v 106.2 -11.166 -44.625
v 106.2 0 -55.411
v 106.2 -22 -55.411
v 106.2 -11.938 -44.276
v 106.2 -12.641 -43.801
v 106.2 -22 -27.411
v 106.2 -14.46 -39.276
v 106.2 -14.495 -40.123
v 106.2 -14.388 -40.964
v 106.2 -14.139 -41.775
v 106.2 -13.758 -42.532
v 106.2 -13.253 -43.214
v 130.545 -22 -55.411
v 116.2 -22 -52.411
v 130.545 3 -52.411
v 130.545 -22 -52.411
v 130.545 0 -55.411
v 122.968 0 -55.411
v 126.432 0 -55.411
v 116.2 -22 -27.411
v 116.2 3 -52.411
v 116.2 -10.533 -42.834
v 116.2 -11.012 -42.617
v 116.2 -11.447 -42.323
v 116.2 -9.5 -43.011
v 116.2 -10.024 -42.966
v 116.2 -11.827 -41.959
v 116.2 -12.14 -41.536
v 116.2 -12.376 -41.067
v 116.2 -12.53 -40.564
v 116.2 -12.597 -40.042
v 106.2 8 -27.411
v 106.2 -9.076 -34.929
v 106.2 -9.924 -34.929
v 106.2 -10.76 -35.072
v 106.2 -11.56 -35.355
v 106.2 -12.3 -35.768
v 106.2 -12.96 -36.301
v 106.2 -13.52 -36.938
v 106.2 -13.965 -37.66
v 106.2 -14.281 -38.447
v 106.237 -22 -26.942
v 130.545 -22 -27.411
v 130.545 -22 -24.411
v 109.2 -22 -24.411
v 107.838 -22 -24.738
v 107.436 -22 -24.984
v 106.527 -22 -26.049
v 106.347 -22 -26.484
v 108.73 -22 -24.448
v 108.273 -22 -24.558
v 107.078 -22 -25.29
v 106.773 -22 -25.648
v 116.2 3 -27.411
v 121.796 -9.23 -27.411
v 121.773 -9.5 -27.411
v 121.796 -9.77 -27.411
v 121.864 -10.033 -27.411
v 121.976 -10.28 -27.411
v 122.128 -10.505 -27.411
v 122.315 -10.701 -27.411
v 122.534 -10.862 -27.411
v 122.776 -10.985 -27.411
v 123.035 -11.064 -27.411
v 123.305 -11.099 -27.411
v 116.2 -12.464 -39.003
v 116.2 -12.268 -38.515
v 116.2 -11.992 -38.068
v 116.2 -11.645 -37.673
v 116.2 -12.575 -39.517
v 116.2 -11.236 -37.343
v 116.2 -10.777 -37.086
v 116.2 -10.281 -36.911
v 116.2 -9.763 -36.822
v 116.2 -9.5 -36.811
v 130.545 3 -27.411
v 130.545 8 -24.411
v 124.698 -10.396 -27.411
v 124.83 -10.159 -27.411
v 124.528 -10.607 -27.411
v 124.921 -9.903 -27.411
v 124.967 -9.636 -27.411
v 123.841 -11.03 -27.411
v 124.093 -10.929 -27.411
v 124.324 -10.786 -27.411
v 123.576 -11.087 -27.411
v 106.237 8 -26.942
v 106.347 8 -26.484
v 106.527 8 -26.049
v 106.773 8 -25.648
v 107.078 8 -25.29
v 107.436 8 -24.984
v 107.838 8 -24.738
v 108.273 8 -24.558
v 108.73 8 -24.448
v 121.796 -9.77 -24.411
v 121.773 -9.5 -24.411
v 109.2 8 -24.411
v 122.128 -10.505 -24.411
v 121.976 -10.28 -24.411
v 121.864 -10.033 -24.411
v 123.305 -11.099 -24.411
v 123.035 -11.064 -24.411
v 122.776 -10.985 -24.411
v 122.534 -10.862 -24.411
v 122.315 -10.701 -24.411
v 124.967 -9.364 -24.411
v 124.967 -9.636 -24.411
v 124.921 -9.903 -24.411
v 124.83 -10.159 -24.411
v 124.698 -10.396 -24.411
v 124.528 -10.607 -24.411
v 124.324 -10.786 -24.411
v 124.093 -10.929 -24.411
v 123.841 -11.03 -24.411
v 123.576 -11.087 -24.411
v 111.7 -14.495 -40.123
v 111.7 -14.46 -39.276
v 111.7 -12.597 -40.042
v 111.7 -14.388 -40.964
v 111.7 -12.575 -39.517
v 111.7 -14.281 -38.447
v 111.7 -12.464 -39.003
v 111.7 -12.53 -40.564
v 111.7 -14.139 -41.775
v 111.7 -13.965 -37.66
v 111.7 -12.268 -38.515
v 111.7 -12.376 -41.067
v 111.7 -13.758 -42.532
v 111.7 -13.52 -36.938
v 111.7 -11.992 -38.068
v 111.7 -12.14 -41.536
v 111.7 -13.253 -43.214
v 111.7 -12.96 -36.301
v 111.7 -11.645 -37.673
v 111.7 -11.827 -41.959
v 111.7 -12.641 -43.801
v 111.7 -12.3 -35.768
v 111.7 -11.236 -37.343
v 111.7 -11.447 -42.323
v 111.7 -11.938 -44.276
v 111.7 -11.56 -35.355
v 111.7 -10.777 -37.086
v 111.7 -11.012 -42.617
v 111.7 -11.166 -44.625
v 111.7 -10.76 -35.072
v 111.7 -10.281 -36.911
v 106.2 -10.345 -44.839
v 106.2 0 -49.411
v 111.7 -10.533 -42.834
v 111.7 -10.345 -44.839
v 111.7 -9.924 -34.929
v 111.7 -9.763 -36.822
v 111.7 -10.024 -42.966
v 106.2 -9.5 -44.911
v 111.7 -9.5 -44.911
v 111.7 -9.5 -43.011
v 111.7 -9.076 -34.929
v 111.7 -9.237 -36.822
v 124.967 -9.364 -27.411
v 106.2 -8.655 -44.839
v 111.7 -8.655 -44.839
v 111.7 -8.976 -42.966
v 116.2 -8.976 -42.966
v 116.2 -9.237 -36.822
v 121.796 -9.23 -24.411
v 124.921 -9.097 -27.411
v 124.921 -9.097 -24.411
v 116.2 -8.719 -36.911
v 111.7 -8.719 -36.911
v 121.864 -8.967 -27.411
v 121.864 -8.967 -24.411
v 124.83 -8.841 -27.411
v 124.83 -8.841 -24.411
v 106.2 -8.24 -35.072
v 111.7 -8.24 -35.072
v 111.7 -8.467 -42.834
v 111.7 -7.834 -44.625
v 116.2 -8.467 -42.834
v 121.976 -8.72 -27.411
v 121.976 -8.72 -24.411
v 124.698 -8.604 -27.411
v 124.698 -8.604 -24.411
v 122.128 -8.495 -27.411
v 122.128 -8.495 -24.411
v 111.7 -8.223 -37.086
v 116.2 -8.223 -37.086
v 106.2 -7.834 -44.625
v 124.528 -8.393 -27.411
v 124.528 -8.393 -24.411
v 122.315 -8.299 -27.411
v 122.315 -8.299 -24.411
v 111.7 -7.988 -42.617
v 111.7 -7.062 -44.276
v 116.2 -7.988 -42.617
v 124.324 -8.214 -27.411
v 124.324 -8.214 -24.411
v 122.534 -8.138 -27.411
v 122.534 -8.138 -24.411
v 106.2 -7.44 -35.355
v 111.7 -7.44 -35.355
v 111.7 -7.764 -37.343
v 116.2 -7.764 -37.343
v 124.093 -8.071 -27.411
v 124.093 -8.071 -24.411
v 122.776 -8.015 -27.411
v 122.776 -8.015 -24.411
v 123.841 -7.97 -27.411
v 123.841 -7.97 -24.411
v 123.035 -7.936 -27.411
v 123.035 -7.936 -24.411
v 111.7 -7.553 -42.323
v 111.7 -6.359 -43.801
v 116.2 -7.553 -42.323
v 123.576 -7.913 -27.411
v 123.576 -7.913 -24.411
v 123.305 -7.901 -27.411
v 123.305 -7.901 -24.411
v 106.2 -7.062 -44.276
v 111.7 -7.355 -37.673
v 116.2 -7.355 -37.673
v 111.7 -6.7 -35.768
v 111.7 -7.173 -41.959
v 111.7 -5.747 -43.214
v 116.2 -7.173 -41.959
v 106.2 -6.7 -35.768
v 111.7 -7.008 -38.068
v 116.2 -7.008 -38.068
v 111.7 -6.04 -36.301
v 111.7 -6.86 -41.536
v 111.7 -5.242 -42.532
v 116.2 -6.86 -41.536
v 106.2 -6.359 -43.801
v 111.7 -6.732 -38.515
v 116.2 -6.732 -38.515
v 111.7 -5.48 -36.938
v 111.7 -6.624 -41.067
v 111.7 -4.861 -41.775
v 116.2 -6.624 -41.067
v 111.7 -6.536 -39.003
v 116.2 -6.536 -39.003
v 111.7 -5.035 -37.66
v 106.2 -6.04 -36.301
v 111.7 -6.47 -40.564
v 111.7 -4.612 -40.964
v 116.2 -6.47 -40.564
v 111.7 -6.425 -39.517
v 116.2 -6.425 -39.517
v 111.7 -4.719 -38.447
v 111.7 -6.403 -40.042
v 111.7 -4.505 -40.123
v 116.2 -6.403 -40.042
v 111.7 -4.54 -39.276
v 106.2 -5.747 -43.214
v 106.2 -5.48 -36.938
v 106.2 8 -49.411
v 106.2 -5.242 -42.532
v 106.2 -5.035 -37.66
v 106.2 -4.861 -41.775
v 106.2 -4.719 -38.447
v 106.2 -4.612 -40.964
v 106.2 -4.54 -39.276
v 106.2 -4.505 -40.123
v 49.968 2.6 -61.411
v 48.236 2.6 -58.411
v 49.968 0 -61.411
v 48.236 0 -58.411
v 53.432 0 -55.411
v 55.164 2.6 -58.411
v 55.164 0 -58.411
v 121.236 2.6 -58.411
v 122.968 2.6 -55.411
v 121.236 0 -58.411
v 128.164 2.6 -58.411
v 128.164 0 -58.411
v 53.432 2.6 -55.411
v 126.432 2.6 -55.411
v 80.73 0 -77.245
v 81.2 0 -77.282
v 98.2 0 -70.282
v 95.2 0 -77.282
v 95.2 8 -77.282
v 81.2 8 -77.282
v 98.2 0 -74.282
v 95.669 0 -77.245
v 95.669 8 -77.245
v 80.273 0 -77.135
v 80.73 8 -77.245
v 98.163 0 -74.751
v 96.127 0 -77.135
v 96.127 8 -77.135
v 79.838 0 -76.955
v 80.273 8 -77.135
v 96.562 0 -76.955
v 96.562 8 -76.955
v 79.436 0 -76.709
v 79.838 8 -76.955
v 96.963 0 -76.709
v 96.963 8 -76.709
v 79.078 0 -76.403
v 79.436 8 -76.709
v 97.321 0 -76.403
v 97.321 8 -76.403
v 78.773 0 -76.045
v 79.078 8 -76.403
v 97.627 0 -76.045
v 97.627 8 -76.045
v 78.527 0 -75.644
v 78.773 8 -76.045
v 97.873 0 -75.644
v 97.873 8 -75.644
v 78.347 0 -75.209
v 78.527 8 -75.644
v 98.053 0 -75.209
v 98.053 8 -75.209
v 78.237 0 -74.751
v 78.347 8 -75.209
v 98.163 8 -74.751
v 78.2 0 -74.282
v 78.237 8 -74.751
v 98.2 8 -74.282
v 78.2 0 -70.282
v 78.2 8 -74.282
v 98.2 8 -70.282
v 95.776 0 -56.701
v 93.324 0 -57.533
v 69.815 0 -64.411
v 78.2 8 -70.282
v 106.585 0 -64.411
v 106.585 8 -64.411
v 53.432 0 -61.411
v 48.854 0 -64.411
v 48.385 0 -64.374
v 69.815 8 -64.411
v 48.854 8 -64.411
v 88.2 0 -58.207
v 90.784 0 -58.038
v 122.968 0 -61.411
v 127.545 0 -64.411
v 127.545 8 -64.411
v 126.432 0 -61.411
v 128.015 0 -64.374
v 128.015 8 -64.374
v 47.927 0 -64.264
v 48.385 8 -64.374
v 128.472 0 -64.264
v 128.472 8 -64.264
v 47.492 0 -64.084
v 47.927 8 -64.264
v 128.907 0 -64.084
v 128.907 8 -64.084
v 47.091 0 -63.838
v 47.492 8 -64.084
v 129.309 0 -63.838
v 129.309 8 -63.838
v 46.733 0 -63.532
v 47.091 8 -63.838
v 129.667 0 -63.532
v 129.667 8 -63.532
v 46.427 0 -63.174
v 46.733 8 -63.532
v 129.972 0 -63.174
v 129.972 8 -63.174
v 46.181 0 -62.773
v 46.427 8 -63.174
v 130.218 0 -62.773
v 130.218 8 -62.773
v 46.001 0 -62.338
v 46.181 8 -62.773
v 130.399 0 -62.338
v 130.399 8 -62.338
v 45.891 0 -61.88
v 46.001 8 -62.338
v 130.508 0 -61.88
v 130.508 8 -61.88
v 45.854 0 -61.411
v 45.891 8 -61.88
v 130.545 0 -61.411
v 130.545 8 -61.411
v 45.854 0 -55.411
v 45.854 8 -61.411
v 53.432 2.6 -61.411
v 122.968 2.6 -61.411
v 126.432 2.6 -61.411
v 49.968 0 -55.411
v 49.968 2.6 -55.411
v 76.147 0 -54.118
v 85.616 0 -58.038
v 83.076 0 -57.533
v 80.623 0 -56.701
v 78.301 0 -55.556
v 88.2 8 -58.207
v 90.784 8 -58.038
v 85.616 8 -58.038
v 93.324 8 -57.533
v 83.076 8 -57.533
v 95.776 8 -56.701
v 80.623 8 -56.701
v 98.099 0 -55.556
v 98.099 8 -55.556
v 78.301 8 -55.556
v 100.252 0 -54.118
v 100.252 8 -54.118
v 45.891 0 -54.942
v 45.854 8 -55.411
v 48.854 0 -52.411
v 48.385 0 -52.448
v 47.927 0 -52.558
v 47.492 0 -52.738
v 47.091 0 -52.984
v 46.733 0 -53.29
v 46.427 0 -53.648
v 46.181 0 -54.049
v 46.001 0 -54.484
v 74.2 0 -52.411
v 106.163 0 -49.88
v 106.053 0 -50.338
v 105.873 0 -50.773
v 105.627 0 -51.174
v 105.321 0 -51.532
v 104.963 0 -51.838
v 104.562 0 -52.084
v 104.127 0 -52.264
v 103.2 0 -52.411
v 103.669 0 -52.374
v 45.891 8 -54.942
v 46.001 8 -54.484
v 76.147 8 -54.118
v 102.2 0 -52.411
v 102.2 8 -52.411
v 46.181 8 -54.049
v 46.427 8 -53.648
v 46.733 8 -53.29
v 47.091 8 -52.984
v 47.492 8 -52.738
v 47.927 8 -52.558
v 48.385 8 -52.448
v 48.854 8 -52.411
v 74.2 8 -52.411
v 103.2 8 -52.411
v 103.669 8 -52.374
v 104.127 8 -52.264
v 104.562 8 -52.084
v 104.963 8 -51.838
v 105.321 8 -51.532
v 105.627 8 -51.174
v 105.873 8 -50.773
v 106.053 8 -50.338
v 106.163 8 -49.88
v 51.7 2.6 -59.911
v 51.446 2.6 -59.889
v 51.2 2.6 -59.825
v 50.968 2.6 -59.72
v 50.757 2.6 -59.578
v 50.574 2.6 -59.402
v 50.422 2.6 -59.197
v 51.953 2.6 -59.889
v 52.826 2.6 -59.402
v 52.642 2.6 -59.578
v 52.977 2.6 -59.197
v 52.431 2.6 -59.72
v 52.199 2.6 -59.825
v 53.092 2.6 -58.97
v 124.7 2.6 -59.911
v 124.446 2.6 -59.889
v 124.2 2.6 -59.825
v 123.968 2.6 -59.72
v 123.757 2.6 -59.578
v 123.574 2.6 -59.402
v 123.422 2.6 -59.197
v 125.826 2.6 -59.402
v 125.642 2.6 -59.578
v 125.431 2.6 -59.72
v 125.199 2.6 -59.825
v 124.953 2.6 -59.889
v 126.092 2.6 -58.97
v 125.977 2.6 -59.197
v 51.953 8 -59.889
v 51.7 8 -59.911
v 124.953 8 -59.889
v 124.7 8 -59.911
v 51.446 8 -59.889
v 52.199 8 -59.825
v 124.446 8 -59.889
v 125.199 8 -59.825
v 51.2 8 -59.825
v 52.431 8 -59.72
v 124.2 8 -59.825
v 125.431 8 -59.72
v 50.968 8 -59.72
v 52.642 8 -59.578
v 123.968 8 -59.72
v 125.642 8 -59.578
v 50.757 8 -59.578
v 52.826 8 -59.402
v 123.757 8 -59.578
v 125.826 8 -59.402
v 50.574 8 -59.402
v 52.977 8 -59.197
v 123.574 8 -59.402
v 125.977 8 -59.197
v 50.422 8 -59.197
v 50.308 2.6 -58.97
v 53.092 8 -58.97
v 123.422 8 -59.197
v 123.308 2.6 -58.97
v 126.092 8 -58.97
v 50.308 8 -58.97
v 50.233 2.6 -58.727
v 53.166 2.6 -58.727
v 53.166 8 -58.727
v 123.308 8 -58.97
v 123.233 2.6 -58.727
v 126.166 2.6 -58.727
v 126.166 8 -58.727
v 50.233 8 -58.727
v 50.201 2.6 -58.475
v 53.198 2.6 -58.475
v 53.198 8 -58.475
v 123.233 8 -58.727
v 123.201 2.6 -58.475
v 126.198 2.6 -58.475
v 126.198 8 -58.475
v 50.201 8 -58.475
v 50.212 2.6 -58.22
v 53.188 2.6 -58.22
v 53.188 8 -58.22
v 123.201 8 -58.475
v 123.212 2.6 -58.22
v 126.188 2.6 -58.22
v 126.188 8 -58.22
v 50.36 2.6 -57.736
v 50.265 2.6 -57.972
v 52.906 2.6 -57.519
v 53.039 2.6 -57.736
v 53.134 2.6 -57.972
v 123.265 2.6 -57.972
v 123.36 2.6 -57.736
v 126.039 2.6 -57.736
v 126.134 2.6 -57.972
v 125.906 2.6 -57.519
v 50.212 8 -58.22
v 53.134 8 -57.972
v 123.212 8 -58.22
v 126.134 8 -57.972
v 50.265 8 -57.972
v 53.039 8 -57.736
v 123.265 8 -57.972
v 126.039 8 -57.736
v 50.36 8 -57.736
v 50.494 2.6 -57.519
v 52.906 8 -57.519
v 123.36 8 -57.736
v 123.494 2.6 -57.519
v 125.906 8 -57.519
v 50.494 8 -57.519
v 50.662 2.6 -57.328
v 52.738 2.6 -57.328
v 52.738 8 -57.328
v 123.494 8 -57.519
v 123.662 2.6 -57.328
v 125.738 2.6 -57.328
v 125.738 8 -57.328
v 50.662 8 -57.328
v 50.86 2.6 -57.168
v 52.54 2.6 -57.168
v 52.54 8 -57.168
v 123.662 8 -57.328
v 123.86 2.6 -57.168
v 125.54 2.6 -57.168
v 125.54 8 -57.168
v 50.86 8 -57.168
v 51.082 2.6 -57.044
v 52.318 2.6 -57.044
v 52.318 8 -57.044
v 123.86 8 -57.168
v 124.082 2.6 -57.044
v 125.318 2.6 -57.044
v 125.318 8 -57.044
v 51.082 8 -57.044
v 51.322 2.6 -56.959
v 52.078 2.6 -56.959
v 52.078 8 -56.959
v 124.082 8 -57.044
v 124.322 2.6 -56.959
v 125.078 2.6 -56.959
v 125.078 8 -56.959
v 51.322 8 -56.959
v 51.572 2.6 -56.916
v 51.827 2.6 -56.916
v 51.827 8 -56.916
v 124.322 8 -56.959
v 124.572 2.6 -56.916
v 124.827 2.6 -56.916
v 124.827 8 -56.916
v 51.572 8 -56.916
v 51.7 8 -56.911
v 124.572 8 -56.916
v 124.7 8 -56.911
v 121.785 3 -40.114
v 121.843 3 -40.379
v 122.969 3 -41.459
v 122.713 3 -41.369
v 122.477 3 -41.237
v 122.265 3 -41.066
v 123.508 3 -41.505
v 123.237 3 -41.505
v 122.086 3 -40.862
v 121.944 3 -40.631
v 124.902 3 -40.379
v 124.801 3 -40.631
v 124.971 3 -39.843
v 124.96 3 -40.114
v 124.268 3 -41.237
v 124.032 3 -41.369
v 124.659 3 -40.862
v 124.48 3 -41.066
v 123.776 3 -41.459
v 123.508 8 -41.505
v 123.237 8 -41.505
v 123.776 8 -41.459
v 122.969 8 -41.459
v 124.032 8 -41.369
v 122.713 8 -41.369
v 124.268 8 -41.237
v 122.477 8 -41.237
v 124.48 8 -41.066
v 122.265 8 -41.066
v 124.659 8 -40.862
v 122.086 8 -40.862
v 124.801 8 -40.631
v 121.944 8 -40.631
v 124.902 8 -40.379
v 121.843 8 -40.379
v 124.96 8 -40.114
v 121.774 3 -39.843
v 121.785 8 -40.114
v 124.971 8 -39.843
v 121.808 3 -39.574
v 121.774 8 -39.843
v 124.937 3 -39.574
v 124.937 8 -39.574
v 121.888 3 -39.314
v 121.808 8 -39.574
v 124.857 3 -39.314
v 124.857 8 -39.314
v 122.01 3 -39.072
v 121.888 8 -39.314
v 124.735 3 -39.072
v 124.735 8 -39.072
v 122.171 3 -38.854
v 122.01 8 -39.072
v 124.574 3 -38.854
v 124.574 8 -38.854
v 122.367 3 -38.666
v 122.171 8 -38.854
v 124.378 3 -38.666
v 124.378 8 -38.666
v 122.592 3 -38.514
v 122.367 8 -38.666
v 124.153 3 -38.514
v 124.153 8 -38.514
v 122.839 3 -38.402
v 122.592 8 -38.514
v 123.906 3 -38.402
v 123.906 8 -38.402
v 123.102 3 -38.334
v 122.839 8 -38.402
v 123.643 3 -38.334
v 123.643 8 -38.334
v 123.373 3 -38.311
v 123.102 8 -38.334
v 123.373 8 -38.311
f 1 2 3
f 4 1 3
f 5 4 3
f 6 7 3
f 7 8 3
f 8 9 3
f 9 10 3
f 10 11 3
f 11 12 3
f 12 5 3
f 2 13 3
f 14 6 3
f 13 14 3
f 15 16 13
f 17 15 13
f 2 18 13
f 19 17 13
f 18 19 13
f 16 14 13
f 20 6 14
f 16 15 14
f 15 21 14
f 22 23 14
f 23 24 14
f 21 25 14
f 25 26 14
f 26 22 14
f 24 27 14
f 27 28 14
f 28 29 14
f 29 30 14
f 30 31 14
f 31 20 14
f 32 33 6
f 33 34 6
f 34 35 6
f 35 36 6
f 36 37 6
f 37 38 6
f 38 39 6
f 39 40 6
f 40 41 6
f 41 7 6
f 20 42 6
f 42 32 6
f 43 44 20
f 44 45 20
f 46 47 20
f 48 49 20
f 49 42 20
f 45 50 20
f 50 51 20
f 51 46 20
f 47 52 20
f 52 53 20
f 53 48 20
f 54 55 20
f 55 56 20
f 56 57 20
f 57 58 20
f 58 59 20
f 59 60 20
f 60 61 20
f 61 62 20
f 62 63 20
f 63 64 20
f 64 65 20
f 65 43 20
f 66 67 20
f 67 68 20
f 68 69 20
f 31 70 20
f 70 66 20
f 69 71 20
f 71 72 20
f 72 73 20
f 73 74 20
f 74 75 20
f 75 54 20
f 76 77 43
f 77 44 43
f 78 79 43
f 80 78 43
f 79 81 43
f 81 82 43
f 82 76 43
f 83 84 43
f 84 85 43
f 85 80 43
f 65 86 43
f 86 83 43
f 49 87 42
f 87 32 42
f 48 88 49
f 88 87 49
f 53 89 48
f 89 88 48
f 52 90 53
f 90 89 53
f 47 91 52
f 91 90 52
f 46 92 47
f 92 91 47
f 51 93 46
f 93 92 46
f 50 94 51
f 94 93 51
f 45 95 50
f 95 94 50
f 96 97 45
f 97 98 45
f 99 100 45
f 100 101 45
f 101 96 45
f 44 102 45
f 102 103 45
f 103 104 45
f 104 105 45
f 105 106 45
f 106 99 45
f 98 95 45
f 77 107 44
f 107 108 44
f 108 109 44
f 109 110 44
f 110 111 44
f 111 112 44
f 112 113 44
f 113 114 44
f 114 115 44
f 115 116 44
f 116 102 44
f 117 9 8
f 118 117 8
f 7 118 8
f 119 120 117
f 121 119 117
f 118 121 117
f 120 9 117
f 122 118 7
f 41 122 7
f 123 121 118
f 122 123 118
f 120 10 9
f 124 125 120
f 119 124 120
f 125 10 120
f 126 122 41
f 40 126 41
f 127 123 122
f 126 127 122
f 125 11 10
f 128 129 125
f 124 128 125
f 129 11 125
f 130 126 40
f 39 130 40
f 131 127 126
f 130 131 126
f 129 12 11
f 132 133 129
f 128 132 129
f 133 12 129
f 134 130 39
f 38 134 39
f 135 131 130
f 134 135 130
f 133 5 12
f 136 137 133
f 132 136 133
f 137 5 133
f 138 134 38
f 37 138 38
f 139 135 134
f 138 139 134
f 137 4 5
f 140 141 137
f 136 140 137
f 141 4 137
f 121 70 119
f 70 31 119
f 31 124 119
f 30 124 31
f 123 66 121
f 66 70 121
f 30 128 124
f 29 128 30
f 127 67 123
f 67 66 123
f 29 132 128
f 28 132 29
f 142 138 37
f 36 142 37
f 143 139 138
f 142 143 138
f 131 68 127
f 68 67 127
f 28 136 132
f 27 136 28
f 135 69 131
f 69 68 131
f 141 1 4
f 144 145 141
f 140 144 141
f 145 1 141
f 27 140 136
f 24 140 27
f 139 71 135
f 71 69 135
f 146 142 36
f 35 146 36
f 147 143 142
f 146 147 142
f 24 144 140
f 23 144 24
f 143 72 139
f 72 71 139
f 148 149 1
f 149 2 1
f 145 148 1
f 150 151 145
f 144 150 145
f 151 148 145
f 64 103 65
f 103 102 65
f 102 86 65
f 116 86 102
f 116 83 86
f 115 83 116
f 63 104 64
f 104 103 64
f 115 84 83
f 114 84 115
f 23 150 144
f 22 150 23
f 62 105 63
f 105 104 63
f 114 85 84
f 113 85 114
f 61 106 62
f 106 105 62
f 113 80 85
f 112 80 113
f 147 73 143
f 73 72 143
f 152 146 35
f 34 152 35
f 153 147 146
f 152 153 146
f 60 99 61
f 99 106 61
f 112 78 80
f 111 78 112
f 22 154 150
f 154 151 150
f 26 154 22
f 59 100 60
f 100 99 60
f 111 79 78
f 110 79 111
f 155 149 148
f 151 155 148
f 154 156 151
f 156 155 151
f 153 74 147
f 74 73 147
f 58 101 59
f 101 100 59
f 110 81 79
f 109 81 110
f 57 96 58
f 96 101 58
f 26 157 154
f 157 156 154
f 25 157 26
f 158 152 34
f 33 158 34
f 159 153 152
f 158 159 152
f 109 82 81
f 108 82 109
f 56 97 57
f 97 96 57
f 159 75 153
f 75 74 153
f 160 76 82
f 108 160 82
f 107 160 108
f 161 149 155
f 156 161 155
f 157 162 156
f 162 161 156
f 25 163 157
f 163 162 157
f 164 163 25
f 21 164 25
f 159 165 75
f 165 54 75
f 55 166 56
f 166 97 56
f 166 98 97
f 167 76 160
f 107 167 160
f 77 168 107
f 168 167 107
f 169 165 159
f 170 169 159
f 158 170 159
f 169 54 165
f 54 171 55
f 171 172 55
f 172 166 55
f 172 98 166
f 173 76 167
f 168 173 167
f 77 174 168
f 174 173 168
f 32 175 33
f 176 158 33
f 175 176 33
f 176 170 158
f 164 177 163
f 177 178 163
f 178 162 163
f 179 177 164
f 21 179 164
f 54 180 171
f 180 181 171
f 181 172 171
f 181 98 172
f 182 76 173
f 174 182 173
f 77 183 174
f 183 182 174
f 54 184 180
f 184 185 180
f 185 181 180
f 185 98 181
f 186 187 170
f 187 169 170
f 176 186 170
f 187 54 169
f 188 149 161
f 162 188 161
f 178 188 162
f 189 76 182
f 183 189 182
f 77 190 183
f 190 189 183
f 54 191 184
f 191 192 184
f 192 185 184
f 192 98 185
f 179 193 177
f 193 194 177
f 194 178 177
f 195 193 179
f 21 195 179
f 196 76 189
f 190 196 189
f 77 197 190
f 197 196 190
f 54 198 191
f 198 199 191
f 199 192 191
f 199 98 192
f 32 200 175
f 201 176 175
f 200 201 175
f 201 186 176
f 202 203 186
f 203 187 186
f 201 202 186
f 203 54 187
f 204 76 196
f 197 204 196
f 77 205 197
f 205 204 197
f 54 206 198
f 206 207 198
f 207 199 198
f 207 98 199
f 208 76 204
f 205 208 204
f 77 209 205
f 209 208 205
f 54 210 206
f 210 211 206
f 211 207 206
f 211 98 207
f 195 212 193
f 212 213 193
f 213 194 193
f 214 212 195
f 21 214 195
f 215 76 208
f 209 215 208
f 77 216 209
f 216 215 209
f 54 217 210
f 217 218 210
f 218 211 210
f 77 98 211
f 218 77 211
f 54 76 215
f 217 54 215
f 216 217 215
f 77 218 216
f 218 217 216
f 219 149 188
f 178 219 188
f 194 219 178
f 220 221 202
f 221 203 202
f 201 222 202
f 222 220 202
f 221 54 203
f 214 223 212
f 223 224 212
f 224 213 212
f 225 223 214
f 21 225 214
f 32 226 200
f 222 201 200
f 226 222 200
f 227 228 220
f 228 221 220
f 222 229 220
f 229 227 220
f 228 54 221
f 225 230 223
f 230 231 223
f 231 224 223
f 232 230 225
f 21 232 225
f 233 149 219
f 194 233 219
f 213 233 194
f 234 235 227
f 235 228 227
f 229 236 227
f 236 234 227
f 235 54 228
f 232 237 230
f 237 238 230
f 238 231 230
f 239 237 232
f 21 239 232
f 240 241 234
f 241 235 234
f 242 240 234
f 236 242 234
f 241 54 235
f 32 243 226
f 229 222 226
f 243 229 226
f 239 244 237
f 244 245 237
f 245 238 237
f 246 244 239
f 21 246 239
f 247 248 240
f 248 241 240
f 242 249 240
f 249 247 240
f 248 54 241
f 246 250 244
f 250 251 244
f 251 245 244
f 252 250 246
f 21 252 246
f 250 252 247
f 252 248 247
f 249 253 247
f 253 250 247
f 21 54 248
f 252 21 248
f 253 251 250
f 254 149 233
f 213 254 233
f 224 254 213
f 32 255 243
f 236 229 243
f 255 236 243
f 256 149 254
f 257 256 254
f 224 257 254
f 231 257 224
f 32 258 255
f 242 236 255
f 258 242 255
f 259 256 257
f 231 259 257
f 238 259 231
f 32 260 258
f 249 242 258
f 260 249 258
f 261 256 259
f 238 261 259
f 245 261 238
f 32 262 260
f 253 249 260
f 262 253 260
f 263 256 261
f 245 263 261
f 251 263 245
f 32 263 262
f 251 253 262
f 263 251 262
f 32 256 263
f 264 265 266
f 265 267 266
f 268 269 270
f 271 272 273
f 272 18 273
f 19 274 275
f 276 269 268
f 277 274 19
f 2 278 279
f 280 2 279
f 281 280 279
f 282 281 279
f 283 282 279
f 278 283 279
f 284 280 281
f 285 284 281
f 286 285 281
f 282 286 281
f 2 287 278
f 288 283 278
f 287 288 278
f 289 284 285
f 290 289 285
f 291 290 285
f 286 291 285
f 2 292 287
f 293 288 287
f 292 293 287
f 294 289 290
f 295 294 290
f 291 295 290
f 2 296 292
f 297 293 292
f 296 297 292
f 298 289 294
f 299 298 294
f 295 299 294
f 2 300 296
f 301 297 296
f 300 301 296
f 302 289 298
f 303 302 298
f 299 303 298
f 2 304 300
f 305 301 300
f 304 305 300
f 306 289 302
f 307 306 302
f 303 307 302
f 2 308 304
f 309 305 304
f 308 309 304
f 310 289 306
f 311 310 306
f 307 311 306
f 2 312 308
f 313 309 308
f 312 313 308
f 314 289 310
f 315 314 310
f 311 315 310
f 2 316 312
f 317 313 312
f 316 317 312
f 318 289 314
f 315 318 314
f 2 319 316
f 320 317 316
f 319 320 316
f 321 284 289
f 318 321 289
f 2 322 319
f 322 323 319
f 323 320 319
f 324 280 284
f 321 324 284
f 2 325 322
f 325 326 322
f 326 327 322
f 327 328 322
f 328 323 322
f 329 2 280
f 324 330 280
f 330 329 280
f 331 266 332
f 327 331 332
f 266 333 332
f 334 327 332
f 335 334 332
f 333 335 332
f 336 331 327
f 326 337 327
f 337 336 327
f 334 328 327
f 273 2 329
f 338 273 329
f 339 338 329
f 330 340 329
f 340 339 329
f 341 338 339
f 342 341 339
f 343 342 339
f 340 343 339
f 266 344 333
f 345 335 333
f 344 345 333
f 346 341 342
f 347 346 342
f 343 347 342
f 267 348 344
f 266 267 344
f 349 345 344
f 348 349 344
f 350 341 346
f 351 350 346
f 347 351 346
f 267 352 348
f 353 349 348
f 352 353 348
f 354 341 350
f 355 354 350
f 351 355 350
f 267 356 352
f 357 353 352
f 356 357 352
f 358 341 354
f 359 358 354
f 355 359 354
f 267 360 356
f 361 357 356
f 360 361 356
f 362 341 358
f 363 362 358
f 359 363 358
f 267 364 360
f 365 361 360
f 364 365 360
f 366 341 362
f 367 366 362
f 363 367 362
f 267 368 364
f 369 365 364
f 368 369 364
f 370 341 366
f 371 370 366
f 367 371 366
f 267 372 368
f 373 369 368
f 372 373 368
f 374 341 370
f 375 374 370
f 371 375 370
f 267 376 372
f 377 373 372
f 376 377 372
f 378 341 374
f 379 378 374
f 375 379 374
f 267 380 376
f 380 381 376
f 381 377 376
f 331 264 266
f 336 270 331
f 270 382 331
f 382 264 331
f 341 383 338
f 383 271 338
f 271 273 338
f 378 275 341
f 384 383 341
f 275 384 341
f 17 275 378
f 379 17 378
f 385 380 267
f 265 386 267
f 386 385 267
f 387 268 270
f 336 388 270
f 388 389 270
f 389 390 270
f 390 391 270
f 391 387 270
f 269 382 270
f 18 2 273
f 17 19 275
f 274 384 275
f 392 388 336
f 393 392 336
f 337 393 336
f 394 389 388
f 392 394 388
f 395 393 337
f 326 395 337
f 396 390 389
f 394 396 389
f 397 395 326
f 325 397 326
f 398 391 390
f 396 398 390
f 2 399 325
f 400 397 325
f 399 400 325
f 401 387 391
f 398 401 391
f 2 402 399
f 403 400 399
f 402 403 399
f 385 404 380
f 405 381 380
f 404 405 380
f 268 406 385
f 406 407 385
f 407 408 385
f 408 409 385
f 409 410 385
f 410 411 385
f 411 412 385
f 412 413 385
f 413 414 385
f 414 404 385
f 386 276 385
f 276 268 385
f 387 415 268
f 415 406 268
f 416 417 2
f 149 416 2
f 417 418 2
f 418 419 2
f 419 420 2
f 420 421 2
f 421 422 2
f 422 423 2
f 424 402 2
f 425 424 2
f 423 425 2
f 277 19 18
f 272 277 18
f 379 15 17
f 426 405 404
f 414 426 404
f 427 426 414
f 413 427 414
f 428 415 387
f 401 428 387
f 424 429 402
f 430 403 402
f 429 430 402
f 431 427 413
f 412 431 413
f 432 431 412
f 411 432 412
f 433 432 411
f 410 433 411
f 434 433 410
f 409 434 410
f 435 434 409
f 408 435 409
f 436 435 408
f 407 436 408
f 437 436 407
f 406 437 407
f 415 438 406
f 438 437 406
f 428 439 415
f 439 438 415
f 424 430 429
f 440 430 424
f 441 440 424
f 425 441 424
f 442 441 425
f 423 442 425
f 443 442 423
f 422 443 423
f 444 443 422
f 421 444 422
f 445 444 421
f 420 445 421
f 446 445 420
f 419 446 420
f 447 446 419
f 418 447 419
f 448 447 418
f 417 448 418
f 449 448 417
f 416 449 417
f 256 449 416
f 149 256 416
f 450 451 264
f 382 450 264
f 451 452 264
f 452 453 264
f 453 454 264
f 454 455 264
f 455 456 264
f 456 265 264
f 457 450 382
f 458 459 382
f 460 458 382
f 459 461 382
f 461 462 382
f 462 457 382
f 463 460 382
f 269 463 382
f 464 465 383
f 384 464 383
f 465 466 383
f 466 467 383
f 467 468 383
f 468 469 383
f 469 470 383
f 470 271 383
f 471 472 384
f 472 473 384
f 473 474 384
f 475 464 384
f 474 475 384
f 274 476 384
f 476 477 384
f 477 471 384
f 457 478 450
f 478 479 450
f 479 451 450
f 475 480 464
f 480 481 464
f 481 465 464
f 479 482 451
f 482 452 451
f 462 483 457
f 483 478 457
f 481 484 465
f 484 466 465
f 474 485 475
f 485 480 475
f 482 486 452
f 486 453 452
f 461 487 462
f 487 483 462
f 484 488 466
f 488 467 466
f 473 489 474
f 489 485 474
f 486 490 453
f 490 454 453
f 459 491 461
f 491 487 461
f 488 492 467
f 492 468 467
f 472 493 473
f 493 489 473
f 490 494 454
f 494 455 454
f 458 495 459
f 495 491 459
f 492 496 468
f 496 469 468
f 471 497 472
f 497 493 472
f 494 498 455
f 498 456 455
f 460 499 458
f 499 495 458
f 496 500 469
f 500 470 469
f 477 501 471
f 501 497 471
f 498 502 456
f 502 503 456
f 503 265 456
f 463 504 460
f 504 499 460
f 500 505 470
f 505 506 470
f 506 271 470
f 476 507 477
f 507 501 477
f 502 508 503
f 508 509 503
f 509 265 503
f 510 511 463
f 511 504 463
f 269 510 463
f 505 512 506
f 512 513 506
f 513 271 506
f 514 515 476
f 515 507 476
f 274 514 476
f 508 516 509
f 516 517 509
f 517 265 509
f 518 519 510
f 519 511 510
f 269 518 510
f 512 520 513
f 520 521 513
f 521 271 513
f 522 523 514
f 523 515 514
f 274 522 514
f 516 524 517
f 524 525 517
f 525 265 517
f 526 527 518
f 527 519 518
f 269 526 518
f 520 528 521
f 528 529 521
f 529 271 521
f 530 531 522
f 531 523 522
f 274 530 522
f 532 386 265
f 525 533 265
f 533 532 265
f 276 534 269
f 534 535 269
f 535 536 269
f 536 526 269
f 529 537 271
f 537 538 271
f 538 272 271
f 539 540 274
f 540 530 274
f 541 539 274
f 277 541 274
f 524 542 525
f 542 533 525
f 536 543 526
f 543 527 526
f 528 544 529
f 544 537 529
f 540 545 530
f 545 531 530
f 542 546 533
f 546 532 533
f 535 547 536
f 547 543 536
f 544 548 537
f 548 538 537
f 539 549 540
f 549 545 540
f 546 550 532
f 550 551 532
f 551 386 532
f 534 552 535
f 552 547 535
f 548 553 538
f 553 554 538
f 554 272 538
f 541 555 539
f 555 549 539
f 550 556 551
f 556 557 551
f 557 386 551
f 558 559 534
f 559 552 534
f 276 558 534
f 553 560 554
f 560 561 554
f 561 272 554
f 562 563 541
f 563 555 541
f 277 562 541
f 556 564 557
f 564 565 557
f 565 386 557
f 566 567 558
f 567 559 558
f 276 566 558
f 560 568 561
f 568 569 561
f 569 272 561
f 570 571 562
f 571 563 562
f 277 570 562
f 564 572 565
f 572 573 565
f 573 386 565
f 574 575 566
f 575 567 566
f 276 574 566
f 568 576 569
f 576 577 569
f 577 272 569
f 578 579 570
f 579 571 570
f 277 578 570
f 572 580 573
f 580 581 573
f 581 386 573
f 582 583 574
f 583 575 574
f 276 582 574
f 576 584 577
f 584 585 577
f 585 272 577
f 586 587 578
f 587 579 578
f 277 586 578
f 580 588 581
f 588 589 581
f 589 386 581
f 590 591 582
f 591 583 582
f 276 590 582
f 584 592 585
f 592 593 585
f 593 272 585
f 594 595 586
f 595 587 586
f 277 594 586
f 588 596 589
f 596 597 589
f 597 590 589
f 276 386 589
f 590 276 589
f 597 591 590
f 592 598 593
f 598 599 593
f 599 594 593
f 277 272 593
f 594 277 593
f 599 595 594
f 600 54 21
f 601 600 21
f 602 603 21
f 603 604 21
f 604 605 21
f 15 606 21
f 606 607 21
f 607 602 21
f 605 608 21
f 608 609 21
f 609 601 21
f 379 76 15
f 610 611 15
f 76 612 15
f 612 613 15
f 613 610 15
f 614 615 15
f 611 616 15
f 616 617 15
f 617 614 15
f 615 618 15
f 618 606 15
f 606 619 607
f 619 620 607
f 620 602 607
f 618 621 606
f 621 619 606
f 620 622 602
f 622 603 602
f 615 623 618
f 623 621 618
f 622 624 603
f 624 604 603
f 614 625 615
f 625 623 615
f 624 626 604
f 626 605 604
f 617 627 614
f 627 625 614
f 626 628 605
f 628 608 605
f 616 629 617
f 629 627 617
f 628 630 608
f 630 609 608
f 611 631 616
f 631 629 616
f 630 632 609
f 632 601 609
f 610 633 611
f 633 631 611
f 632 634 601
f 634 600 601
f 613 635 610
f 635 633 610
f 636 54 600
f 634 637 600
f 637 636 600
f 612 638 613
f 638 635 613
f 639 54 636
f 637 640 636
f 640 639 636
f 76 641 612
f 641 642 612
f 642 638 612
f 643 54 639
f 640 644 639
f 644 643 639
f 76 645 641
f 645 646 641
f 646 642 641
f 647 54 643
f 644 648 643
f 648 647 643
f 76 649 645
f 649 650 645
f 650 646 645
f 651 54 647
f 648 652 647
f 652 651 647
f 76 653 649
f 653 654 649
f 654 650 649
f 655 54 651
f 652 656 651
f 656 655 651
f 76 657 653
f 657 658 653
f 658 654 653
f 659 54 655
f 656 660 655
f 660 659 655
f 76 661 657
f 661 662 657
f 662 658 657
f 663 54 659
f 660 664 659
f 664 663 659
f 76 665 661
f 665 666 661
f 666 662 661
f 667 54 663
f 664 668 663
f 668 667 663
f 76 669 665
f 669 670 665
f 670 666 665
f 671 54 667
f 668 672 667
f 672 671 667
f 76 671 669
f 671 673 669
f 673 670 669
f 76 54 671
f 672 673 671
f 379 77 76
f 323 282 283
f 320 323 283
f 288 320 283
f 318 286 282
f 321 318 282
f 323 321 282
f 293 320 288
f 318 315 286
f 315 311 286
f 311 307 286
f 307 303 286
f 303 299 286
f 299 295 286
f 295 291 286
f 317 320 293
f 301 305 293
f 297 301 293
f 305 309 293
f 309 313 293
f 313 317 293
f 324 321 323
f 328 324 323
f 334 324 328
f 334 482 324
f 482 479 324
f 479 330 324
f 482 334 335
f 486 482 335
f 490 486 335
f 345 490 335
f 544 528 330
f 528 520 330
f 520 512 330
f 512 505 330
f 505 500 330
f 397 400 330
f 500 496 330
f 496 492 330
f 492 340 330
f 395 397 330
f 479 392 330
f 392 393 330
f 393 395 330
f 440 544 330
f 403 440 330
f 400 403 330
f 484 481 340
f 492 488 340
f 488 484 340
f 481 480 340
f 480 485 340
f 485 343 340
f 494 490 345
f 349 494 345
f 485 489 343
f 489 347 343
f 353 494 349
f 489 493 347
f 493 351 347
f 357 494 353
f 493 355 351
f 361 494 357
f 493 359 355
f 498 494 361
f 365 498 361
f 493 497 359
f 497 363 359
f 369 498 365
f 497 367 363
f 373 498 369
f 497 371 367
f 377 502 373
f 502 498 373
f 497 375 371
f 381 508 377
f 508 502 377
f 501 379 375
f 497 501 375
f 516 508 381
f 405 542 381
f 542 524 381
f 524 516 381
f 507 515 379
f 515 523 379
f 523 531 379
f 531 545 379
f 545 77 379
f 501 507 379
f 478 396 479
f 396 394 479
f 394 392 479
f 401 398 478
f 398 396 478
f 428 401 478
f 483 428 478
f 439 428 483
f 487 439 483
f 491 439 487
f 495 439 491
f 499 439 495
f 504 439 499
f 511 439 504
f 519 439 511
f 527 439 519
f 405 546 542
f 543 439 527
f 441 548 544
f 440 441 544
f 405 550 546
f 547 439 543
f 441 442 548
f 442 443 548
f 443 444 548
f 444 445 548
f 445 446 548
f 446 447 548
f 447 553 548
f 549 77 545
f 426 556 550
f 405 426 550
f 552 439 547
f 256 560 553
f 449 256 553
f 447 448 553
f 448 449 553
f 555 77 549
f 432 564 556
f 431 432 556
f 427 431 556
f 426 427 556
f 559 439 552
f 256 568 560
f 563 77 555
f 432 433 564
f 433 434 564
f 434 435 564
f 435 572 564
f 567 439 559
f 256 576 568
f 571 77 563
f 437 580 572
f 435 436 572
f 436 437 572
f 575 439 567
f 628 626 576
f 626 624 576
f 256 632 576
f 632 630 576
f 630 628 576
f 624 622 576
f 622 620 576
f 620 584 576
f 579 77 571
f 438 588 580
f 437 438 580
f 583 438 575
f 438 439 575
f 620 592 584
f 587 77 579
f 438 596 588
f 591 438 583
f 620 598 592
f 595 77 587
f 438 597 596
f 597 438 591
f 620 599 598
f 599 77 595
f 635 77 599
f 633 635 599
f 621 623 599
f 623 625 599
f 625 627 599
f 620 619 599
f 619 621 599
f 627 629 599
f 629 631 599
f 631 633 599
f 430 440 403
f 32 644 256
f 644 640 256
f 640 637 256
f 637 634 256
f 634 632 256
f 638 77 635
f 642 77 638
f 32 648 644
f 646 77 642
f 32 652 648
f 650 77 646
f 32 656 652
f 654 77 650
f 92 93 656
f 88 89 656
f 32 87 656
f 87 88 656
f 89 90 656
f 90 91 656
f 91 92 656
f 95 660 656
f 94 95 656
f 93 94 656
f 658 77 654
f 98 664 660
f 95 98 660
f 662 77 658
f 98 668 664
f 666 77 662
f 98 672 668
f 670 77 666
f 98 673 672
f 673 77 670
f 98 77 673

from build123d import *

# Parameters (mm, degrees)
SKETCH2_R           = 1.5
BOSS_EXTRUDE1_DEPTH = 8
SKETCH11_W          = 24.345630124
SKETCH11_H          = 31
BOSS_EXTRUDE4_DEPTH = 30
SKETCH12_W          = 25
SKETCH12_H          = 25
CUT_EXTRUDE7_DEPTH  = 14.34563
CUT_EXTRUDE8_REACH  = 26.346
SKETCH13_R          = 3.1
SKETCH14_R          = 5
CUT_EXTRUDE9_DEPTH  = 5.5
SKETCH15_R          = 1.6
CUT_EXTRUDE10_DEPTH = 5.5
CUT_EXTRUDE11_REACH = 32
SKETCH16_R          = 1.6
CUT_EXTRUDE12_DEPTH = 2.6
FILLET2_R           = 3


with BuildPart() as part:
    # Sketch2 → Boss-Extrude1 (new body)
    with BuildSketch(Plane(origin=(0, 0, 0), x_dir=(1, 0, 0), z_dir=(0, 1, 0))):
        with BuildLine():
            Line((-38.837197709, 64.4109018), (-14.876439197, 64.4109018))
            Line((-14.876439197, 64.4109018), (-6.491567585, 70.282052109))
            Line((-6.491567585, 70.282052109), (-6.491567585, 77.282052109))
            Line((-6.491567585, 77.282052109), (13.508432415, 77.282052109))
            Line((13.508432415, 77.282052109), (13.508432415, 70.282052109))
            Line((13.508432415, 70.282052109), (21.893304027, 64.4109018))
            Line((21.893304027, 64.4109018), (45.85406254, 64.4109018))
            Line((45.85406254, 64.4109018), (45.85406254, 52.4109018))
            Line((45.85406254, 52.4109018), (17.508432415, 52.4109018))
            ThreePointArc((17.508432415, 52.4109018), (3.508432415, 58.207416665), (-10.491567585, 52.4109018))
            Line((-10.491567585, 52.4109018), (-38.837197709, 52.4109018))
            Line((-38.837197709, 52.4109018), (-38.837197709, 64.4109018))
        make_face()
        with Locations((-32.991567585, 58.4109018)):
            Circle(SKETCH2_R, mode=Mode.SUBTRACT)
        with Locations((40.008432415, 58.4109018)):
            Circle(SKETCH2_R, mode=Mode.SUBTRACT)
    extrude(amount=BOSS_EXTRUDE1_DEPTH)

    # Sketch11 → Boss-Extrude4 (add)
    with BuildSketch(Plane(origin=(0, 8, 0), x_dir=(-1, 0, 0), z_dir=(0, -1, 0))):
        with Locations((26.664382647, 39.9109018)):
            Rectangle(SKETCH11_W, SKETCH11_H)
    extrude(amount=BOSS_EXTRUDE4_DEPTH)

    # Sketch12 → Cut-Extrude7 (cut)
    with BuildSketch(Plane.ZY.offset(38.837197709)):
        with Locations((-39.9109018, -9.5)):
            Rectangle(SKETCH12_W, SKETCH12_H)
    extrude(amount=-CUT_EXTRUDE7_DEPTH, mode=Mode.SUBTRACT)

    # Sketch13 → Cut-Extrude8 (cut, up to next)
    with BuildSketch(Plane(origin=(-14.491567585, 0, 0), x_dir=(0, 0, -1), z_dir=(1, 0, 0)), mode=Mode.PRIVATE) as cut_extrude8_sk1:
        with Locations((39.9109018, -9.5)):
            Circle(SKETCH13_R)
    cut_extrude8_tool1 = extrude(cut_extrude8_sk1.sketch, amount=-CUT_EXTRUDE8_REACH, mode=Mode.PRIVATE) & part.part
    add(cut_extrude8_tool1.solids().sort_by_distance((-14.491568, -9.5, -39.910902))[0], mode=Mode.SUBTRACT)

    # Sketch14 → Cut-Extrude9 (cut)
    with BuildSketch(Plane(origin=(-14.491567585, 0, 0), x_dir=(0, 0, -1), z_dir=(1, 0, 0))):
        with Locations((39.9109018, -9.5)):
            Circle(SKETCH14_R)
    extrude(amount=-CUT_EXTRUDE9_DEPTH, mode=Mode.SUBTRACT)

    # Sketch15 → Cut-Extrude10 (cut)
    with BuildSketch(Plane.XY.offset(-24.4109018)):
        with Locations((-31.664382647, -9.5)):
            Circle(SKETCH15_R)
    extrude(amount=-CUT_EXTRUDE10_DEPTH, mode=Mode.SUBTRACT)

    # Sketch16 → Cut-Extrude11 (cut, up to next)
    with BuildSketch(Plane(origin=(0, 8, 0), x_dir=(1, 0, 0), z_dir=(0, 1, 0)), mode=Mode.PRIVATE) as cut_extrude11_sk1:
        with Locations((-31.664382647, 39.9109018)):
            Circle(SKETCH16_R)
    cut_extrude11_tool1 = extrude(cut_extrude11_sk1.sketch, amount=-CUT_EXTRUDE11_REACH, mode=Mode.PRIVATE) & part.part
    add(cut_extrude11_tool1.solids().sort_by_distance((-31.664383, 8, -39.910902))[0], mode=Mode.SUBTRACT)

    # Sketch17 → Cut-Extrude12 (cut)
    with BuildSketch(Plane.XZ):
        Polygon((-31.259516777, -61.4109018), (-29.52746597, -58.4109018), (-31.259516777, -55.4109018), (-34.723618392, -55.4109018), (-36.4556692, -58.4109018), (-34.723618392, -61.4109018), align=None)
        Polygon((38.276381608, -61.4109018), (41.740483223, -61.4109018), (43.47253403, -58.4109018), (41.740483223, -55.4109018), (38.276381608, -55.4109018), (36.5443308, -58.4109018), align=None)
    extrude(amount=-CUT_EXTRUDE12_DEPTH, mode=Mode.SUBTRACT)

    # Fillet2
    fillet2_edges = [part.edges().sort_by_distance(p)[0] for p in [
        (-38.837197709, 4, -64.4109018),
        (-6.491567585, 4, -77.282052109),
        (13.508432415, 4, -77.282052109),
        (45.85406254, 4, -64.4109018),
        (45.85406254, 4, -52.4109018),
        (-14.491567585, 4, -52.4109018),
        (-14.491567585, -7, -24.4109018),
    ]]
    fillet(fillet2_edges, radius=FILLET2_R)


with BuildPart() as body_2:
    # Mirror2: mirrored copy
    add(part.part.mirror(Plane(origin=(45.85406254, 8, -64.4109018), x_dir=(0, 0, 1), z_dir=(-1, 0, 0))))


solid = body_2.part
